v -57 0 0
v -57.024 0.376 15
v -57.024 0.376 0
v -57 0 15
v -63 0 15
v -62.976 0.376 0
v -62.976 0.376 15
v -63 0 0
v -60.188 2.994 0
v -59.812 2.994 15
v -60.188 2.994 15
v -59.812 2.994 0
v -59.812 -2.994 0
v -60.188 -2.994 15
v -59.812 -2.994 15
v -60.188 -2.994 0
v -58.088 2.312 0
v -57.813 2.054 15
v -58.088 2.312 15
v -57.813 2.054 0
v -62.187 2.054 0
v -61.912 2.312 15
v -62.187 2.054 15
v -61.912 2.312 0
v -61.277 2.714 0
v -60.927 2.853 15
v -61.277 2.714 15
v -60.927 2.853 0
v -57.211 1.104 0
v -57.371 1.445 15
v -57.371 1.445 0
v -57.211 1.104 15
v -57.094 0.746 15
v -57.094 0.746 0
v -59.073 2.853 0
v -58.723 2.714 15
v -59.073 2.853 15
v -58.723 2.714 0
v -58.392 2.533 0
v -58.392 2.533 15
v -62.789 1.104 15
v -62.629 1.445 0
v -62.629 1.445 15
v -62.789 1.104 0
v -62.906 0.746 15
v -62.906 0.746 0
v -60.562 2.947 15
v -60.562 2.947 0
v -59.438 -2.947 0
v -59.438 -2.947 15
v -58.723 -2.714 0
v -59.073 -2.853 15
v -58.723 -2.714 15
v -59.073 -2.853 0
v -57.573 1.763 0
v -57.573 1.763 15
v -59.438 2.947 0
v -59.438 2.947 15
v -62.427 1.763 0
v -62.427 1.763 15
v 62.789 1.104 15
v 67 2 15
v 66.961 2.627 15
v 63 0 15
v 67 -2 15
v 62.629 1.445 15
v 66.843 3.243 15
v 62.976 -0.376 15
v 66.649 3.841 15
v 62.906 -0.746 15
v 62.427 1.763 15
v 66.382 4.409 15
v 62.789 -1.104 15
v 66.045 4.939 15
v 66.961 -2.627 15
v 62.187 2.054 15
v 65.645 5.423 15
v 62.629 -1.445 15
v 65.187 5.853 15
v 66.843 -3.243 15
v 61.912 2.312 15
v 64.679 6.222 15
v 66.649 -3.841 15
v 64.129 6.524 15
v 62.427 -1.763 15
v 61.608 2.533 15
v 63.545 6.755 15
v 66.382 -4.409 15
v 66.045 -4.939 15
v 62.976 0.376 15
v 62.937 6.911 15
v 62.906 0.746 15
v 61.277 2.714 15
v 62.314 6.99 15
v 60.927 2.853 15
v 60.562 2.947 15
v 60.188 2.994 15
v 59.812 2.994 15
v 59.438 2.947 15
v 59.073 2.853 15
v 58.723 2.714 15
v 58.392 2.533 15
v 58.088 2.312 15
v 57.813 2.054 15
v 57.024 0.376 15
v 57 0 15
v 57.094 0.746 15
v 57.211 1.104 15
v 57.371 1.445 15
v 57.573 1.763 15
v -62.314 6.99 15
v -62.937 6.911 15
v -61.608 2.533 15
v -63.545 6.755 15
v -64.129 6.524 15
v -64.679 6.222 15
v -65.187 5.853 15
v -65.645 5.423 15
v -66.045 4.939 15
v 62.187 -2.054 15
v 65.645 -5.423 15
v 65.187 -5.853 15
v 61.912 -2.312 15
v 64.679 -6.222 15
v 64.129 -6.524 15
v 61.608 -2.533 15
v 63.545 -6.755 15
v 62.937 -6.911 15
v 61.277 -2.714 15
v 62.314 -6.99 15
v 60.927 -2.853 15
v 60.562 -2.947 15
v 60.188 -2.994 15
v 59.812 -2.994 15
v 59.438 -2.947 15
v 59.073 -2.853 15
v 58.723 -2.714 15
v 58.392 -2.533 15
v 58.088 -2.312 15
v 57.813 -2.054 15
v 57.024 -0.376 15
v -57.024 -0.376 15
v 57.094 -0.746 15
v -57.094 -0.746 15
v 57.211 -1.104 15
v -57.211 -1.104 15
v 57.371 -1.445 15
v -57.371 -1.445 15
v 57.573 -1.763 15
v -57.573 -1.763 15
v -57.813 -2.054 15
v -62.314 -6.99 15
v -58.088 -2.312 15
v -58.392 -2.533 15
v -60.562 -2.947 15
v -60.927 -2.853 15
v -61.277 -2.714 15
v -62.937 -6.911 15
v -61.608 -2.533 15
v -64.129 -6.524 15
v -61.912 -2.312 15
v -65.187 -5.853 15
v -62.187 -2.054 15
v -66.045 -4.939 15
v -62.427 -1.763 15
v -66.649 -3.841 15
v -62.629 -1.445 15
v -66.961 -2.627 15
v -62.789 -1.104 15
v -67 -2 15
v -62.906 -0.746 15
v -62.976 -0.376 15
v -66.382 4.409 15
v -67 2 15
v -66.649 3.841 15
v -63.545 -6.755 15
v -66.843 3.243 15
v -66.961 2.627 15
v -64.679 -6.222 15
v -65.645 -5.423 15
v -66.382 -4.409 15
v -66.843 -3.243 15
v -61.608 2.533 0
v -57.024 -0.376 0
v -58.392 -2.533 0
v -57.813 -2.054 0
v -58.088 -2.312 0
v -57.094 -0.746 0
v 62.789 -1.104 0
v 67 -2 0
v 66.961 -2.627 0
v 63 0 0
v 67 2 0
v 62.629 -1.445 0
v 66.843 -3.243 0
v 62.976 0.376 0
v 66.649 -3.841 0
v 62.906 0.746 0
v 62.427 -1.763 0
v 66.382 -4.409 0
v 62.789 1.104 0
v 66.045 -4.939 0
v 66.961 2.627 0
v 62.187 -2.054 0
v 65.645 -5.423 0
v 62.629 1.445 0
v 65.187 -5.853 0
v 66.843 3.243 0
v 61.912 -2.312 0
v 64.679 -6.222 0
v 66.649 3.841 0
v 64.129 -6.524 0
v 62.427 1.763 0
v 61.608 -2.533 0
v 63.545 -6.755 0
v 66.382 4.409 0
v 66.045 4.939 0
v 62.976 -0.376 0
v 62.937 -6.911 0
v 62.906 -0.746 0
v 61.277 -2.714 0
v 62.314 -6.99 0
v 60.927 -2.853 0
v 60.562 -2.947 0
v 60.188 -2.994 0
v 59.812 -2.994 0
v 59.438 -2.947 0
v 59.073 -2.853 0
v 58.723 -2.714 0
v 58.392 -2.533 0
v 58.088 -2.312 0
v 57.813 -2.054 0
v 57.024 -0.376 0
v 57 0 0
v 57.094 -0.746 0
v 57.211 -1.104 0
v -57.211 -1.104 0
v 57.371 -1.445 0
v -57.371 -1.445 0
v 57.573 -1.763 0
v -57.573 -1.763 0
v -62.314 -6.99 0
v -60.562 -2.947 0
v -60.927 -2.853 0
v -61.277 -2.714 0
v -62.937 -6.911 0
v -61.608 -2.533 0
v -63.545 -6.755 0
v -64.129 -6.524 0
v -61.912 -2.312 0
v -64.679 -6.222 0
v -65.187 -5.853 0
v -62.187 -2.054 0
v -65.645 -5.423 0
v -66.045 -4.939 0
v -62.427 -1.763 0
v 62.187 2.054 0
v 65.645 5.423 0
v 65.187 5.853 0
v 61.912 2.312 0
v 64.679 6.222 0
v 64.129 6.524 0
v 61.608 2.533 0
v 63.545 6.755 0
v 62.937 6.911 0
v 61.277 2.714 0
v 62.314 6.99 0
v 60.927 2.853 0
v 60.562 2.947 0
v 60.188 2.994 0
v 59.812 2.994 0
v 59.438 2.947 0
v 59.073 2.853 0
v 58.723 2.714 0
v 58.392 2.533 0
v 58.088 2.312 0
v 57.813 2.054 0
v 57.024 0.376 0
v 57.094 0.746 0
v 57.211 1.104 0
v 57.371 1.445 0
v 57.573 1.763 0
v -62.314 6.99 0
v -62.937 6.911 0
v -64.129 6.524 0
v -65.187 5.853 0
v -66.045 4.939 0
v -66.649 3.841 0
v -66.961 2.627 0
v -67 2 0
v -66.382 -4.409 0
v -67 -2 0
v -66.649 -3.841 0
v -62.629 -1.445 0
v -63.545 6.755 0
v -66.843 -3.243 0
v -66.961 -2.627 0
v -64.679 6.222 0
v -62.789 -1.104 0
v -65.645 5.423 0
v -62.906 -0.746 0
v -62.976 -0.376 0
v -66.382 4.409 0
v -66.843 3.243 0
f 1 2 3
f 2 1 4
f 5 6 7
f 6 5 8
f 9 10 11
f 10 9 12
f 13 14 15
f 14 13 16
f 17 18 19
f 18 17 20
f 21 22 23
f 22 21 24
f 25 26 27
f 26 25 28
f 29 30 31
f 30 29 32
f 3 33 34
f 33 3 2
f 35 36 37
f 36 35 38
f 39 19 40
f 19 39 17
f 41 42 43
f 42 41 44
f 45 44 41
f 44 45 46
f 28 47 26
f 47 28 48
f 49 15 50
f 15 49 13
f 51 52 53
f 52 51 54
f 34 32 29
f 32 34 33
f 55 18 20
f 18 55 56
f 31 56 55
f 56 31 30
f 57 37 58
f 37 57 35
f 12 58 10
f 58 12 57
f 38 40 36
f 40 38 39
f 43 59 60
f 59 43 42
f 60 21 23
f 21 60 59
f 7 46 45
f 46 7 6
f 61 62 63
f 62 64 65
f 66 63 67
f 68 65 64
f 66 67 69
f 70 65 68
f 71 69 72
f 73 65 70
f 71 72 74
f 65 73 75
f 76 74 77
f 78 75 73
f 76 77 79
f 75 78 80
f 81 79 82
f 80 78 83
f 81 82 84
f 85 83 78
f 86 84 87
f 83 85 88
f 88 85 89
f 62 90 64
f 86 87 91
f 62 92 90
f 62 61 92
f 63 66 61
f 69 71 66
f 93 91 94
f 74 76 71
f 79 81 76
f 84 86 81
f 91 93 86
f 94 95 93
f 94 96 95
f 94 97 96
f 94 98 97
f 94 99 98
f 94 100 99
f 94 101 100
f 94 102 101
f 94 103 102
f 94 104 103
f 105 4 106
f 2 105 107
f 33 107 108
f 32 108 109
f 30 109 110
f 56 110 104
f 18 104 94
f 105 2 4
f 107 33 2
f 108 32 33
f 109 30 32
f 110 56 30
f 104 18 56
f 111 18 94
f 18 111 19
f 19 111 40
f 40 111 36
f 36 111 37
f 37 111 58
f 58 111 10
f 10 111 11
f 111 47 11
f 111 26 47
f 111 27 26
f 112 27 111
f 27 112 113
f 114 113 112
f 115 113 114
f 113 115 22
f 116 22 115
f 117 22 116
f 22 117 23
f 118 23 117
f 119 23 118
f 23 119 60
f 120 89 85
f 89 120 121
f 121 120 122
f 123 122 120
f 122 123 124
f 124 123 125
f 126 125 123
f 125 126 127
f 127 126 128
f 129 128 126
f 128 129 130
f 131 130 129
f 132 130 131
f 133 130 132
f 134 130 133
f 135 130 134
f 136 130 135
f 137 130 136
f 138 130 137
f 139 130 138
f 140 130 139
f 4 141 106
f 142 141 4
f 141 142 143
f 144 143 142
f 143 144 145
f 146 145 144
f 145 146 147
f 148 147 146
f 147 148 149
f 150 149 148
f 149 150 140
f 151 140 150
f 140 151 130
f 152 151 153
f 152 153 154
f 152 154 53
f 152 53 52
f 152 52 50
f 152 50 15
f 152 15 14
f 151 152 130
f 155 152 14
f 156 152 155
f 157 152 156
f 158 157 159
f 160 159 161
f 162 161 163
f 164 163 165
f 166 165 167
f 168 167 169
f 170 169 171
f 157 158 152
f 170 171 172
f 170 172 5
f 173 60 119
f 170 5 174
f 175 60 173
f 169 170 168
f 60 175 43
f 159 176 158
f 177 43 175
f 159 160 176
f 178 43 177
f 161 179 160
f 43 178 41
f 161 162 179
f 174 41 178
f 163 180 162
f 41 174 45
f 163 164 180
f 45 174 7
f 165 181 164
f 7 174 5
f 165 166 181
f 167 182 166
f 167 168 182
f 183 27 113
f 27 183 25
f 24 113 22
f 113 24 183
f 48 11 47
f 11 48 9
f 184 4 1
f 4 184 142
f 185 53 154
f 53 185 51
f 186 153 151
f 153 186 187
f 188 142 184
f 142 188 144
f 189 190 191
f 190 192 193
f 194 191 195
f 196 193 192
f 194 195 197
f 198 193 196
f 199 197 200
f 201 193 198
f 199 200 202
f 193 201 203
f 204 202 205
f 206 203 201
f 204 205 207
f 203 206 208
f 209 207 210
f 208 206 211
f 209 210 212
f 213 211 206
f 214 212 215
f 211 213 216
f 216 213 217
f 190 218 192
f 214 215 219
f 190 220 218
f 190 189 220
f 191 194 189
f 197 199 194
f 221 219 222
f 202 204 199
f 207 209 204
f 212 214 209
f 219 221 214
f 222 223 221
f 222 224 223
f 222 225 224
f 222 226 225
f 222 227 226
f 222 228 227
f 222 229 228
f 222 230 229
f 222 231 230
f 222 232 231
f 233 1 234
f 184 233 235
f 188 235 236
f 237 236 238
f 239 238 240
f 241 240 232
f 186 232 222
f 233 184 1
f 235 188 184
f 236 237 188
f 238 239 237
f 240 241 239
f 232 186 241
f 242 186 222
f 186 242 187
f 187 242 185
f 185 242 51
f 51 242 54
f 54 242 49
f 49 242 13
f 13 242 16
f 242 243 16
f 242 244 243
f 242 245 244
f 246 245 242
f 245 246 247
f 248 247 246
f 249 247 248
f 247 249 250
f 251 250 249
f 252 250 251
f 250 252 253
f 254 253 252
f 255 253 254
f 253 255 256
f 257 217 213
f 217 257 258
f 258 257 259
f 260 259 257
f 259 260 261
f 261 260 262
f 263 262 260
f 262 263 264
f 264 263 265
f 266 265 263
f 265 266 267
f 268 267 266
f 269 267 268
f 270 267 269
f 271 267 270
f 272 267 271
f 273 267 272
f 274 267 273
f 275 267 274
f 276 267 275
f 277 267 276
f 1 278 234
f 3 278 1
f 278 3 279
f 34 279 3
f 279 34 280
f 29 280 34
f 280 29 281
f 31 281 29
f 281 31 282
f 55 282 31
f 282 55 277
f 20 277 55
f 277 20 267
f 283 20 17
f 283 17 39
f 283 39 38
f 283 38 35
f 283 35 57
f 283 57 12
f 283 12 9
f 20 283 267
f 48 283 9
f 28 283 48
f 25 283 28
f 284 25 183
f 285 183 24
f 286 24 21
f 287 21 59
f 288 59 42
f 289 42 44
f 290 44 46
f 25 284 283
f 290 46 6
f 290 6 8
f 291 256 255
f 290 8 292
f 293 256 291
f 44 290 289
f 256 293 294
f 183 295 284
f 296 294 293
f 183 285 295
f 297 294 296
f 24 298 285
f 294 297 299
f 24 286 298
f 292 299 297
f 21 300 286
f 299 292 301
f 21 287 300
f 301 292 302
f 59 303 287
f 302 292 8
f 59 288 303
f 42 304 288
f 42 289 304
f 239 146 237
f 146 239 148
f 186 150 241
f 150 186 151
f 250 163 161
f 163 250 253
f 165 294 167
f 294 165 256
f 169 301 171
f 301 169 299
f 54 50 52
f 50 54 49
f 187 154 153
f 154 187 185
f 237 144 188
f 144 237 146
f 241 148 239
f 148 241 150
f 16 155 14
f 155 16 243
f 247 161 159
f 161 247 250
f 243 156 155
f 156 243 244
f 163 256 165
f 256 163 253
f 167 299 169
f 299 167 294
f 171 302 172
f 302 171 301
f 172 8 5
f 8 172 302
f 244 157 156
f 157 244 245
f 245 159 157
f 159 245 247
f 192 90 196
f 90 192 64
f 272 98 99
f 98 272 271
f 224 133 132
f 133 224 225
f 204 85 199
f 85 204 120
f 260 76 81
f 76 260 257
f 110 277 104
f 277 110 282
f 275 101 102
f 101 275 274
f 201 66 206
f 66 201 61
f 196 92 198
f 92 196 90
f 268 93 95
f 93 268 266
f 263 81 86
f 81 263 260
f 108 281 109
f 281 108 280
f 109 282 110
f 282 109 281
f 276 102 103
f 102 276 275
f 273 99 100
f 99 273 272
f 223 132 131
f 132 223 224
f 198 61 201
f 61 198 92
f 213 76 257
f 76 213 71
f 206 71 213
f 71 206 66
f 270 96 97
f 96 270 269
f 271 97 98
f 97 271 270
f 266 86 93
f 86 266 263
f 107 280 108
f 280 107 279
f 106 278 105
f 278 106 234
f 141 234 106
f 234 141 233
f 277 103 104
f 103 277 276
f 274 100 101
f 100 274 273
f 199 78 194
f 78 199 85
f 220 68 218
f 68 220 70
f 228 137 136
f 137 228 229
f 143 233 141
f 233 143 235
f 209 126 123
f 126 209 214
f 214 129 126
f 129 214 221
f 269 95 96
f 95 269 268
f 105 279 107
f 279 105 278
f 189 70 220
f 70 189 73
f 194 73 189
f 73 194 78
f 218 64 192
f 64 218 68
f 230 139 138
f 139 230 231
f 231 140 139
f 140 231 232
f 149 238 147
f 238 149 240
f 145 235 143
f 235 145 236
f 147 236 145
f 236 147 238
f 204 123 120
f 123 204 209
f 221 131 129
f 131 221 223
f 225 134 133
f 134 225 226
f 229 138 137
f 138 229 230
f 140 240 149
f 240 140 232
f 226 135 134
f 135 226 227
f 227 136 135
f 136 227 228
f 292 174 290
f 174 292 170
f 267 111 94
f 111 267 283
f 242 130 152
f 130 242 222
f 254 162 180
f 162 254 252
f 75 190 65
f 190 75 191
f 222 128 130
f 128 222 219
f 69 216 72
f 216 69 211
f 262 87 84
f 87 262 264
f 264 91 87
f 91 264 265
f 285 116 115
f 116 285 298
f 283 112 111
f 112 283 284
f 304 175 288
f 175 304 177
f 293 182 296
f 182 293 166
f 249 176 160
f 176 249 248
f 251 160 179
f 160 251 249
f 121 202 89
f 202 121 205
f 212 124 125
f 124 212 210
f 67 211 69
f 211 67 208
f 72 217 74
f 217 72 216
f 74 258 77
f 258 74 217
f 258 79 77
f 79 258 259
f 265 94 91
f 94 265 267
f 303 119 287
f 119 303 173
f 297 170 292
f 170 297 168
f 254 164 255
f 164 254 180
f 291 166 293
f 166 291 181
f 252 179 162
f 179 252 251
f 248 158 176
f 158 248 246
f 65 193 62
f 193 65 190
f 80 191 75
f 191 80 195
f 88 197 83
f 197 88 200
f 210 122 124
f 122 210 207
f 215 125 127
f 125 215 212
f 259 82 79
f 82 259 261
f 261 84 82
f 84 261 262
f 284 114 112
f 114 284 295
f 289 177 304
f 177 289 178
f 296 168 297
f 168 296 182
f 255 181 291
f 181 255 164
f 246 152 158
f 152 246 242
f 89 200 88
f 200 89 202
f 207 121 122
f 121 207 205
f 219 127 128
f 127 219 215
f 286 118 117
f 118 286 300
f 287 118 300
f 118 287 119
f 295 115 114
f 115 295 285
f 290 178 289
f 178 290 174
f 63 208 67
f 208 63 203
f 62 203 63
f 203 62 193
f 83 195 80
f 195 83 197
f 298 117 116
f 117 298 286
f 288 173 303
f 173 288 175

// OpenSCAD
$fn = 50;


difference() {
	union() {
		hull() {
			translate(v = [-62.0000000000, 2.0000000000, 0]) {
				cylinder(h = 15, r = 5);
			}
			translate(v = [62.0000000000, 2.0000000000, 0]) {
				cylinder(h = 15, r = 5);
			}
			translate(v = [-62.0000000000, -2.0000000000, 0]) {
				cylinder(h = 15, r = 5);
			}
			translate(v = [62.0000000000, -2.0000000000, 0]) {
				cylinder(h = 15, r = 5);
			}
		}
	}
	union() {
		translate(v = [-60.0000000000, 0.0000000000, 0]) {
			cylinder(h = 15, r = 3.0000000000);
		}
		translate(v = [60.0000000000, 0.0000000000, 0]) {
			cylinder(h = 15, r = 3.0000000000);
		}
		translate(v = [-60.0000000000, 0.0000000000, 0]) {
			cylinder(h = 15, r = 1.5000000000);
		}
		translate(v = [60.0000000000, 0.0000000000, 0]) {
			cylinder(h = 15, r = 1.5000000000);
		}
		translate(v = [-60.0000000000, 0.0000000000, 0]) {
			cylinder(h = 15, r = 1.5000000000);
		}
		translate(v = [60.0000000000, 0.0000000000, 0]) {
			cylinder(h = 15, r = 1.5000000000);
		}
		translate(v = [-60.0000000000, 0.0000000000, 0]) {
			cylinder(h = 15, r = 1.5000000000);
		}
		translate(v = [60.0000000000, 0.0000000000, 0]) {
			cylinder(h = 15, r = 1.5000000000);
		}
	}
}
